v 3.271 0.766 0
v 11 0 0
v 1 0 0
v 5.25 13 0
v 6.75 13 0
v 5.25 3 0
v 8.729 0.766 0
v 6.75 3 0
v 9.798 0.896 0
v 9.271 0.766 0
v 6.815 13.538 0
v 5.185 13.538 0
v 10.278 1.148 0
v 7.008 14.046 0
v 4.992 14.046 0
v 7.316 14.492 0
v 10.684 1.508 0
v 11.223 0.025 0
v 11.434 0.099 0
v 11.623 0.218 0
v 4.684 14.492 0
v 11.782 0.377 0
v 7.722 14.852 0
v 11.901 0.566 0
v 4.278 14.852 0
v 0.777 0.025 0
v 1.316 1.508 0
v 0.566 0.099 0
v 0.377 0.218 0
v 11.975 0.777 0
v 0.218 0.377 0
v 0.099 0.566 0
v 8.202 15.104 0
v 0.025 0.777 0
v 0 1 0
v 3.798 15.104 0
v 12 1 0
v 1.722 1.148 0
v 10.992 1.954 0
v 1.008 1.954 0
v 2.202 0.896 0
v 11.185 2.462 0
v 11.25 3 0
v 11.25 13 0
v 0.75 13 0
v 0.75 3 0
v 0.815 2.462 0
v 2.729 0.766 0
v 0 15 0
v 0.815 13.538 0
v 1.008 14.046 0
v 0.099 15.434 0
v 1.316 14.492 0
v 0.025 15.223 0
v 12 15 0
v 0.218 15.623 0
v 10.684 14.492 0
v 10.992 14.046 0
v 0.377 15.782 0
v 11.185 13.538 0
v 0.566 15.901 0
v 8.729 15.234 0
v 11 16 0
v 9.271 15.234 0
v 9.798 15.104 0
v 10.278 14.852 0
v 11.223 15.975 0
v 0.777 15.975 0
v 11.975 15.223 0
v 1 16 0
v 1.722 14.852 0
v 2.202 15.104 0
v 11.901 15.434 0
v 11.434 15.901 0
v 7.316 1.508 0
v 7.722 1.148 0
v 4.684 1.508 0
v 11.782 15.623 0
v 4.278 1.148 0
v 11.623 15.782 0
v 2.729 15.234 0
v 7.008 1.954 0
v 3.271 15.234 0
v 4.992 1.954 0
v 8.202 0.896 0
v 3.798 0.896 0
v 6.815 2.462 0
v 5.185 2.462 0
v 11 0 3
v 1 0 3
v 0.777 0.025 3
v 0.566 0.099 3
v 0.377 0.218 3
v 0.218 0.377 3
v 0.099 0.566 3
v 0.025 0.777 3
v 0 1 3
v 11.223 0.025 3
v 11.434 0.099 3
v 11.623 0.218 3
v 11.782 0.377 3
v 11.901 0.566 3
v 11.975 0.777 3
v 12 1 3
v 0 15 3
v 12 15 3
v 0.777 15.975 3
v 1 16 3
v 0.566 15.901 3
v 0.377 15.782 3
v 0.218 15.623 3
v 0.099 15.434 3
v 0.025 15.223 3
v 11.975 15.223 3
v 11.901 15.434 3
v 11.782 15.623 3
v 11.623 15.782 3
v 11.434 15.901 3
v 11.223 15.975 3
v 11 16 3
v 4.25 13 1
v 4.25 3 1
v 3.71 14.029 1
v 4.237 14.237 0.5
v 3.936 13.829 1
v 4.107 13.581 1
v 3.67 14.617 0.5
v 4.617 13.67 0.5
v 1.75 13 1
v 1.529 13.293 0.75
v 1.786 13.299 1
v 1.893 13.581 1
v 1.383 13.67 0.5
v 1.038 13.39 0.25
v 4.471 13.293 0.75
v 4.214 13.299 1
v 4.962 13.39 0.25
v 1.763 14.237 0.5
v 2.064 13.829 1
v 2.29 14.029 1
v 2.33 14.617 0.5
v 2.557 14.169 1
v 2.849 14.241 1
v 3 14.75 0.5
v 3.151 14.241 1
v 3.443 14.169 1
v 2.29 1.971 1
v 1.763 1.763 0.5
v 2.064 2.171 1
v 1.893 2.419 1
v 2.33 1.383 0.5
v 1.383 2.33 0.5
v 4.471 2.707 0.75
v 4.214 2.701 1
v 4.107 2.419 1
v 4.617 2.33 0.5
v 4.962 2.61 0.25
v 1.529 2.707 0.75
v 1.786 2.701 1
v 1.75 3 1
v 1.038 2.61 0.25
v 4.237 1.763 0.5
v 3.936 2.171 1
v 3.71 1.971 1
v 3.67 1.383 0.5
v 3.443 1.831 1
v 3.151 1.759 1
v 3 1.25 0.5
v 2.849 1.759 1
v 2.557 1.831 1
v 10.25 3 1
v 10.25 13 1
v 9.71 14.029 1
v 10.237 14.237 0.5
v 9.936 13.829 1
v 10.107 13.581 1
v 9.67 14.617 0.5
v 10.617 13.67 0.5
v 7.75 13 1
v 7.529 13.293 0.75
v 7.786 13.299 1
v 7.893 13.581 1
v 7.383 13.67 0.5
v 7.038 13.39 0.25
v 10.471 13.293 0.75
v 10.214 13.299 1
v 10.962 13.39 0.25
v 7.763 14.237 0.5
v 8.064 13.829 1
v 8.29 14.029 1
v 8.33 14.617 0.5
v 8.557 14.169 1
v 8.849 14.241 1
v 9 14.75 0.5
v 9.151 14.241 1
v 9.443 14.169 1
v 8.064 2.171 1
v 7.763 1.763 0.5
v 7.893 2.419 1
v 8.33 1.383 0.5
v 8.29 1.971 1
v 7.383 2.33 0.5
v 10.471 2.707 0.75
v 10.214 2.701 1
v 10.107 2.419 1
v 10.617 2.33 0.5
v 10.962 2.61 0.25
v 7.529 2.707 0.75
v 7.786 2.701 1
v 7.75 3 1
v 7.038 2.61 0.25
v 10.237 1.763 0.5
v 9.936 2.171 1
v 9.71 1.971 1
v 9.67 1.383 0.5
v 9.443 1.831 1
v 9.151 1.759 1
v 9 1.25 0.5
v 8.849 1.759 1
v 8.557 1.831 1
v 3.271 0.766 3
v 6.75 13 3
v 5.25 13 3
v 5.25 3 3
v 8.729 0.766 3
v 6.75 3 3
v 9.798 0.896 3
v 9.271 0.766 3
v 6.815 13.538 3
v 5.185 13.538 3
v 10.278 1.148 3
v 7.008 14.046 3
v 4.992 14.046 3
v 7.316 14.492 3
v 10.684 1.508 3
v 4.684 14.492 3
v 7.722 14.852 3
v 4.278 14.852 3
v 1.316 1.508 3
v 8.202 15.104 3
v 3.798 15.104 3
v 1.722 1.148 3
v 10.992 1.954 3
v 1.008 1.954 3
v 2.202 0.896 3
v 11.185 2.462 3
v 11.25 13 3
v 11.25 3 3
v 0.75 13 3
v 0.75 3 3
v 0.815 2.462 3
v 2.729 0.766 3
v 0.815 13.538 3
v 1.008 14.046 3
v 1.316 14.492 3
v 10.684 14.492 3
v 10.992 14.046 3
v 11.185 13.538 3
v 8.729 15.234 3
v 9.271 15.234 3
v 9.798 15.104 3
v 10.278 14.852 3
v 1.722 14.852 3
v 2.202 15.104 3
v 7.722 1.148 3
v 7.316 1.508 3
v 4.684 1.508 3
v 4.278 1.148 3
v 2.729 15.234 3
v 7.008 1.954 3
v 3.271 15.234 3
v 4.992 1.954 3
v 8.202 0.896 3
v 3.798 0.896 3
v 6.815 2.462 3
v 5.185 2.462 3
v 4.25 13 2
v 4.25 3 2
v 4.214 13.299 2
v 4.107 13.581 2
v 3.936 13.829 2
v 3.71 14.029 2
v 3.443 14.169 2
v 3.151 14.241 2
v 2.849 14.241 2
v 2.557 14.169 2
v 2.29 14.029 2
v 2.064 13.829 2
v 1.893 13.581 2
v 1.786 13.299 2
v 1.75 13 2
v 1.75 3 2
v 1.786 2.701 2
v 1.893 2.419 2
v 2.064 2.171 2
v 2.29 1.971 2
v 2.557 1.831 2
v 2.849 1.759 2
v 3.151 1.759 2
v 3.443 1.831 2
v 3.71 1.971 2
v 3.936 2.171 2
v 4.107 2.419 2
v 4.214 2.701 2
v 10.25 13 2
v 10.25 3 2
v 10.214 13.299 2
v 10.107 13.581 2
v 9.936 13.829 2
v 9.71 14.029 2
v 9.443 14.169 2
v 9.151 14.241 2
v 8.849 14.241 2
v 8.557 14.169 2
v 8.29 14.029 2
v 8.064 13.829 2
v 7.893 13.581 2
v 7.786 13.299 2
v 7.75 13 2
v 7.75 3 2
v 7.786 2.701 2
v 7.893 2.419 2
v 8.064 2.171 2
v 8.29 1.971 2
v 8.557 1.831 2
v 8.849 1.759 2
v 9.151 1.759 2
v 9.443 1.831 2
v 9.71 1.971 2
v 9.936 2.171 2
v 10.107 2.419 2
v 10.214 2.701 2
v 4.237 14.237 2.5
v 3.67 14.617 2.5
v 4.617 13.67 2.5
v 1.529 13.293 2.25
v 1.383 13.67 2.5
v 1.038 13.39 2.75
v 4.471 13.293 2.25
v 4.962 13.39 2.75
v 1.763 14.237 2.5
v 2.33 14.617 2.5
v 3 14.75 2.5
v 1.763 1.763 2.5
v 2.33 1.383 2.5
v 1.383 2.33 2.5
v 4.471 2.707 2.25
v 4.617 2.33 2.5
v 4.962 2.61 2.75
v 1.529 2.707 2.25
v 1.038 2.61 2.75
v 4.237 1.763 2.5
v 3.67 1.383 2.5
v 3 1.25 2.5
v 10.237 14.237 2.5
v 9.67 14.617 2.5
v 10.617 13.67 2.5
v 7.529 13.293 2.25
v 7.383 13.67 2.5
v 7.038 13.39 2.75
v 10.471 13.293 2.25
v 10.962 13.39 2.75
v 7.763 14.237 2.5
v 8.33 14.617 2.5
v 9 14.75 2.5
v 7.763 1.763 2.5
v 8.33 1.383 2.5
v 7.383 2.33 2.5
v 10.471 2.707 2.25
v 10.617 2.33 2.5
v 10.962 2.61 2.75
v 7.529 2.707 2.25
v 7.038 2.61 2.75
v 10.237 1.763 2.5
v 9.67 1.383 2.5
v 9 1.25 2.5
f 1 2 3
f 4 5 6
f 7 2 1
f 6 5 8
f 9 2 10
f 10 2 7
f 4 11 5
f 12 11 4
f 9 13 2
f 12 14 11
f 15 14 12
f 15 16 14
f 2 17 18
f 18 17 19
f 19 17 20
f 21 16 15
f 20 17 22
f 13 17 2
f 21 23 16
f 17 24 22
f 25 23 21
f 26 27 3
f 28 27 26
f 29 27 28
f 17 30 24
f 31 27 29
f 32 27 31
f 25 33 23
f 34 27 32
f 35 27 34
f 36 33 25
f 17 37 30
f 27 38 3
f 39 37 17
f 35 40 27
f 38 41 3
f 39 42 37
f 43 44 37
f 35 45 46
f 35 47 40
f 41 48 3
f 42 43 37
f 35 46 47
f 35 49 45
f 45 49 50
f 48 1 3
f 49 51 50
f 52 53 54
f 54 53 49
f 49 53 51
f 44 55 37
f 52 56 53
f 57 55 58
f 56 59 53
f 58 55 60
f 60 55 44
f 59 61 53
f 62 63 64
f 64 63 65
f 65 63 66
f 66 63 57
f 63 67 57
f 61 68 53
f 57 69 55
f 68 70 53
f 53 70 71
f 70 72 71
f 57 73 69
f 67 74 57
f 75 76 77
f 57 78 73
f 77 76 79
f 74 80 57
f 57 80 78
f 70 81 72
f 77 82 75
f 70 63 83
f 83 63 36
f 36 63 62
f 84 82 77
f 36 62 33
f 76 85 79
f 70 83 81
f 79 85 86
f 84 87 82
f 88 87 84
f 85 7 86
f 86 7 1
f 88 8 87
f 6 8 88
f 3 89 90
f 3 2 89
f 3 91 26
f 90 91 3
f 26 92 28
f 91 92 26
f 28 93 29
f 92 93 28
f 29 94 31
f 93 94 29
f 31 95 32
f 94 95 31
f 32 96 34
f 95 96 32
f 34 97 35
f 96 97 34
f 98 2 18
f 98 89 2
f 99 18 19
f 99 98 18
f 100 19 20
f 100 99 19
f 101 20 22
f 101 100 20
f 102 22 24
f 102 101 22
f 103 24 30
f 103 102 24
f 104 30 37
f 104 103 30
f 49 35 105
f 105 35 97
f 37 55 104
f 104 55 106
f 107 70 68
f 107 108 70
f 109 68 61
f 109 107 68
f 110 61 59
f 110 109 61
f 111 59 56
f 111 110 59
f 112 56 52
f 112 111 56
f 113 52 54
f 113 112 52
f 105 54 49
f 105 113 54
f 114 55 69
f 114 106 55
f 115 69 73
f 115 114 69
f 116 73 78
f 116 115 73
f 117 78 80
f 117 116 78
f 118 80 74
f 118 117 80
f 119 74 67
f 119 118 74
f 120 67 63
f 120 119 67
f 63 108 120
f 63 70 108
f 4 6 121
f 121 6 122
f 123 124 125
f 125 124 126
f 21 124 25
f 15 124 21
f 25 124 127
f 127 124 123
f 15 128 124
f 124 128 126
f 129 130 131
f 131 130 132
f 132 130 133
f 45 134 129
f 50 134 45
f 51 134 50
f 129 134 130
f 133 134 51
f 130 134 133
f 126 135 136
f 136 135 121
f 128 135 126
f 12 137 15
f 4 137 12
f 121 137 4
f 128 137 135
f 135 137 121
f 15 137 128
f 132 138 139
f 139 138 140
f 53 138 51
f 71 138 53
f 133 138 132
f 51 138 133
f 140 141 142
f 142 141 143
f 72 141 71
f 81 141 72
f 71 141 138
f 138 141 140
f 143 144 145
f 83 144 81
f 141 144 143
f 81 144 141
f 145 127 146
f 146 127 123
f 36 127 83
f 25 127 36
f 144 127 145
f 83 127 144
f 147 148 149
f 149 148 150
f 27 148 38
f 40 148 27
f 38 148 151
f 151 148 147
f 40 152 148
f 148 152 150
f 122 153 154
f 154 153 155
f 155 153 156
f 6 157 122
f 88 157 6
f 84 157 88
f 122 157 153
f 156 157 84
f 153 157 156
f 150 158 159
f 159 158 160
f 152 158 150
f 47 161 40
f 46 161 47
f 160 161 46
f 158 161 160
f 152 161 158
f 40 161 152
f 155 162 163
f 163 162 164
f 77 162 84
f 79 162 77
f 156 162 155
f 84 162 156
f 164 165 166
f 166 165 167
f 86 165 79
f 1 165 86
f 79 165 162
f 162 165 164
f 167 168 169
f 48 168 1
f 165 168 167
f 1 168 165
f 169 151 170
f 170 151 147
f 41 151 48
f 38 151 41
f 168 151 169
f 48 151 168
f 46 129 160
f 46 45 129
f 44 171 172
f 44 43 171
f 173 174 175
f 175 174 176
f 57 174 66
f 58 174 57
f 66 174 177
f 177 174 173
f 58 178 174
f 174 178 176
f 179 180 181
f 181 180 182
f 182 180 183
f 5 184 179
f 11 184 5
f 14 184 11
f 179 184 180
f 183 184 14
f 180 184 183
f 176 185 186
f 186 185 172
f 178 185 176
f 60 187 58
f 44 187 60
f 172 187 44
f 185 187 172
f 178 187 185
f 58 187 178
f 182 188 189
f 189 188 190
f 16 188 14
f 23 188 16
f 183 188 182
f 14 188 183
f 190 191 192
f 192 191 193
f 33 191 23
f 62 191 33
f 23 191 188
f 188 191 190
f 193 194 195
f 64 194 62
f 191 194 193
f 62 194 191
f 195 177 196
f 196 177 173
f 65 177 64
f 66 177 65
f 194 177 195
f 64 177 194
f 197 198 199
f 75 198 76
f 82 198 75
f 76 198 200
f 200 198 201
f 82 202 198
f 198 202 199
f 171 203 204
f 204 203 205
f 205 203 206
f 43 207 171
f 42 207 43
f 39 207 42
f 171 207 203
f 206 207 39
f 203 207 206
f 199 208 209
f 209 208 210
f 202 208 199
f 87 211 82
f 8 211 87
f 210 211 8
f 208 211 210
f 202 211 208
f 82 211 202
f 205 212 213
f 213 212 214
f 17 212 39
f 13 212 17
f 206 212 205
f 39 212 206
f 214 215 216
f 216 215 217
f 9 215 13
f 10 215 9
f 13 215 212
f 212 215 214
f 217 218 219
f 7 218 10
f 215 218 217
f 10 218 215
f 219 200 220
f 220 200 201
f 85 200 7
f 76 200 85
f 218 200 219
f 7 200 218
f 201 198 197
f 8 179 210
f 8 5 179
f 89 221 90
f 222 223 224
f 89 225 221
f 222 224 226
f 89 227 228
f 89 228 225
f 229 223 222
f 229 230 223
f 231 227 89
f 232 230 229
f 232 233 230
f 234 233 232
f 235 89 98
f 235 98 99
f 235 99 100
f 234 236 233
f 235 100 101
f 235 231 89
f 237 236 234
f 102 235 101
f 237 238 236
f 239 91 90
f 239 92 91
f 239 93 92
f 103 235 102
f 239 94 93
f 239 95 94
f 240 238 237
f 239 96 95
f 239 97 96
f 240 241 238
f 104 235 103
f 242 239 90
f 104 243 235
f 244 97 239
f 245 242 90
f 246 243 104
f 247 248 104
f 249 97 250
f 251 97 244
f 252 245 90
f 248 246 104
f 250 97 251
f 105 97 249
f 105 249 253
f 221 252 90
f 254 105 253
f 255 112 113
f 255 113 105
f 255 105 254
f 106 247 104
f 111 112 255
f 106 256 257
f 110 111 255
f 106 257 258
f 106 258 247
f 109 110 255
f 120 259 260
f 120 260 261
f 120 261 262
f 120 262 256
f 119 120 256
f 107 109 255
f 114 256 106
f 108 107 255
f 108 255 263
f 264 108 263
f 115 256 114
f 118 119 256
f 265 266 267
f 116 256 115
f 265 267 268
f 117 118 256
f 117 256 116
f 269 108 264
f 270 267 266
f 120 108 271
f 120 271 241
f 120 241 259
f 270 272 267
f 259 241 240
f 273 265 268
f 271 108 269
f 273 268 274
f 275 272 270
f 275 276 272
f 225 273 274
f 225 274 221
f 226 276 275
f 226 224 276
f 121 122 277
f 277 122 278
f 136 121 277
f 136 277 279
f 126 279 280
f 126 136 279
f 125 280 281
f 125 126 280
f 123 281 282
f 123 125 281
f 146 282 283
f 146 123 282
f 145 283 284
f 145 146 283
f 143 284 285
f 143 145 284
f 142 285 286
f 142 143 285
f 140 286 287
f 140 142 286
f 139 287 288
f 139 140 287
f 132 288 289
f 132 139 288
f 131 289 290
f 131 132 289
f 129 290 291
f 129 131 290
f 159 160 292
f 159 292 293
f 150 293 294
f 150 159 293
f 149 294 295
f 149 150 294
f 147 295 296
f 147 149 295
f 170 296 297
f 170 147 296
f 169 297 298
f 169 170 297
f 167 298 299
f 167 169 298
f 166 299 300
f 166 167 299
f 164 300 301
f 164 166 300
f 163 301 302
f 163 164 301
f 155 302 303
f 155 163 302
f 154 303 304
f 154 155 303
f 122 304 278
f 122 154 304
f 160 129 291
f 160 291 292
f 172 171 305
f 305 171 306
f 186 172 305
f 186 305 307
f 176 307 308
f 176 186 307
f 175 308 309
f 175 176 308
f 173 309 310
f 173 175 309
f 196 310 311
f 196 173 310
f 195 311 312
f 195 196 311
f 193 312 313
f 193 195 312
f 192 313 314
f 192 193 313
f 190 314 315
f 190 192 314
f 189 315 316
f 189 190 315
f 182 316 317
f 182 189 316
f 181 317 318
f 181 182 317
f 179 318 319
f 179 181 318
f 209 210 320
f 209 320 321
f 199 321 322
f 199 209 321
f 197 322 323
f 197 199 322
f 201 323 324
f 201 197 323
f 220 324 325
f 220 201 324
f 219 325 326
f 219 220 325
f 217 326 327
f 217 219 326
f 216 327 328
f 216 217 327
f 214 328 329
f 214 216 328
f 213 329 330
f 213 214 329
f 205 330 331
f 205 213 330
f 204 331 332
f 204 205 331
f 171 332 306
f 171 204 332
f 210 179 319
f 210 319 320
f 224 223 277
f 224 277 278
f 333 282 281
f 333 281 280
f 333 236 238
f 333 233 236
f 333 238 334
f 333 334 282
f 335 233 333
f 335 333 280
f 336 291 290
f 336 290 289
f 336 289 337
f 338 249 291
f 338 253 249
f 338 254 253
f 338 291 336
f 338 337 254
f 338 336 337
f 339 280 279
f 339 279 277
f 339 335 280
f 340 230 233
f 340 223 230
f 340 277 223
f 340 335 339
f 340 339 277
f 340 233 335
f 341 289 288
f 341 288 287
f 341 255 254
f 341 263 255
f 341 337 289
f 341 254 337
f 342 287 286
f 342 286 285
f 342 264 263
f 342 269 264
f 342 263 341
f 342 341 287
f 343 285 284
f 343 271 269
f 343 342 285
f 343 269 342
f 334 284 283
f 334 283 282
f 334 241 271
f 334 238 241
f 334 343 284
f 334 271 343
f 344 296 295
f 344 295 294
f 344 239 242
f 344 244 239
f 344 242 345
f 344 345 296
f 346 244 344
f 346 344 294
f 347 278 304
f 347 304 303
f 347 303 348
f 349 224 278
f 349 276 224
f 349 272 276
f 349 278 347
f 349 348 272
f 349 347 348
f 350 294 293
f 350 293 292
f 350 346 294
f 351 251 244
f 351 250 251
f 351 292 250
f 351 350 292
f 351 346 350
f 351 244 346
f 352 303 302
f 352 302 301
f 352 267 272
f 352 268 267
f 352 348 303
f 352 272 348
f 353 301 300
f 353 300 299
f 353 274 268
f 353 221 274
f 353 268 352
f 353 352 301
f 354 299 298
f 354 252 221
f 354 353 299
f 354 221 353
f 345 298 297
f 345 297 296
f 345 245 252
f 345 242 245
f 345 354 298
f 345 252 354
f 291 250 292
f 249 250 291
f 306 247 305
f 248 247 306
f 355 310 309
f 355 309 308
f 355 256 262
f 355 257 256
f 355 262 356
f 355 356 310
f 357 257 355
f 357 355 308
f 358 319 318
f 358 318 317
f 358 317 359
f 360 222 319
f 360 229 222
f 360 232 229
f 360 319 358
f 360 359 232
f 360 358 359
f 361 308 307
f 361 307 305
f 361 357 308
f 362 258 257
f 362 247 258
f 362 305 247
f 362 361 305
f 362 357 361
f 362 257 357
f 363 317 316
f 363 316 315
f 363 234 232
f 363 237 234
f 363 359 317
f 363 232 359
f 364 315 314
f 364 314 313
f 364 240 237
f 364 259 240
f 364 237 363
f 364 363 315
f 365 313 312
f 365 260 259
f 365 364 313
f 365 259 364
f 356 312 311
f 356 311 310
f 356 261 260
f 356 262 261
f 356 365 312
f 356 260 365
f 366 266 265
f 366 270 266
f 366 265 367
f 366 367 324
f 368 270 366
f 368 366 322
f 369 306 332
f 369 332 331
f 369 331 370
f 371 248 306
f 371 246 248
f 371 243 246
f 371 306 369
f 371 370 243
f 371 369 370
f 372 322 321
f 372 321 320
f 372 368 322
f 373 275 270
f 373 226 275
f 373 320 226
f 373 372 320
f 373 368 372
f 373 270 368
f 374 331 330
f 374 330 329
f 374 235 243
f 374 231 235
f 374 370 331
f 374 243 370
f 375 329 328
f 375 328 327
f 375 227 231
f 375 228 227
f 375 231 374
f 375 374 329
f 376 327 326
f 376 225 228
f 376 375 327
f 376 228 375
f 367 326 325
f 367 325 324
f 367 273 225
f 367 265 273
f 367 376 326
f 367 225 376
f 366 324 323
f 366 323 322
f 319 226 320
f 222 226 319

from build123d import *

# Parameters (mm, degrees)
SKETCH_W     = 12
SKETCH_H     = 16
PAD_DEPTH    = 3
CHAMFER_SIZE = 1
FILLET_R     = 1


with BuildPart() as part:
    # Sketch → Pad (new body)
    with BuildSketch(Plane.XY):
        with Locations((6, 8)):
            Rectangle(SKETCH_W, SKETCH_H)
        with BuildLine():
            ThreePointArc((4.25, 13), (3, 14.25), (1.75, 13))
            Line((1.75, 13), (1.75, 3))
            ThreePointArc((1.75, 3), (3, 1.75), (4.25, 3))
            Line((4.25, 13), (4.25, 3))
        make_face(mode=Mode.SUBTRACT)
        with BuildLine():
            ThreePointArc((10.25, 13), (9, 14.25), (7.75, 13))
            Line((7.75, 13), (7.75, 3))
            ThreePointArc((7.75, 3), (9, 1.75), (10.25, 3))
            Line((10.25, 13), (10.25, 3))
        make_face(mode=Mode.SUBTRACT)
    extrude(amount=PAD_DEPTH)

    # Chamfer
    chamfer_edges = [part.edges().sort_by_distance(p)[0] for p in [
        (4.25, 8, 3),
        (4.25, 8, 0),
        (10.25, 8, 0),
        (10.25, 8, 3),
    ]]
    chamfer(chamfer_edges, length=CHAMFER_SIZE)

    # Fillet
    fillet_edges = [part.edges().sort_by_distance(p)[0] for p in [
        (0, 16, 1.5),
        (0, 0, 1.5),
        (12, 0, 1.5),
        (12, 16, 1.5),
    ]]
    fillet(fillet_edges, radius=FILLET_R)


solid = part.part
